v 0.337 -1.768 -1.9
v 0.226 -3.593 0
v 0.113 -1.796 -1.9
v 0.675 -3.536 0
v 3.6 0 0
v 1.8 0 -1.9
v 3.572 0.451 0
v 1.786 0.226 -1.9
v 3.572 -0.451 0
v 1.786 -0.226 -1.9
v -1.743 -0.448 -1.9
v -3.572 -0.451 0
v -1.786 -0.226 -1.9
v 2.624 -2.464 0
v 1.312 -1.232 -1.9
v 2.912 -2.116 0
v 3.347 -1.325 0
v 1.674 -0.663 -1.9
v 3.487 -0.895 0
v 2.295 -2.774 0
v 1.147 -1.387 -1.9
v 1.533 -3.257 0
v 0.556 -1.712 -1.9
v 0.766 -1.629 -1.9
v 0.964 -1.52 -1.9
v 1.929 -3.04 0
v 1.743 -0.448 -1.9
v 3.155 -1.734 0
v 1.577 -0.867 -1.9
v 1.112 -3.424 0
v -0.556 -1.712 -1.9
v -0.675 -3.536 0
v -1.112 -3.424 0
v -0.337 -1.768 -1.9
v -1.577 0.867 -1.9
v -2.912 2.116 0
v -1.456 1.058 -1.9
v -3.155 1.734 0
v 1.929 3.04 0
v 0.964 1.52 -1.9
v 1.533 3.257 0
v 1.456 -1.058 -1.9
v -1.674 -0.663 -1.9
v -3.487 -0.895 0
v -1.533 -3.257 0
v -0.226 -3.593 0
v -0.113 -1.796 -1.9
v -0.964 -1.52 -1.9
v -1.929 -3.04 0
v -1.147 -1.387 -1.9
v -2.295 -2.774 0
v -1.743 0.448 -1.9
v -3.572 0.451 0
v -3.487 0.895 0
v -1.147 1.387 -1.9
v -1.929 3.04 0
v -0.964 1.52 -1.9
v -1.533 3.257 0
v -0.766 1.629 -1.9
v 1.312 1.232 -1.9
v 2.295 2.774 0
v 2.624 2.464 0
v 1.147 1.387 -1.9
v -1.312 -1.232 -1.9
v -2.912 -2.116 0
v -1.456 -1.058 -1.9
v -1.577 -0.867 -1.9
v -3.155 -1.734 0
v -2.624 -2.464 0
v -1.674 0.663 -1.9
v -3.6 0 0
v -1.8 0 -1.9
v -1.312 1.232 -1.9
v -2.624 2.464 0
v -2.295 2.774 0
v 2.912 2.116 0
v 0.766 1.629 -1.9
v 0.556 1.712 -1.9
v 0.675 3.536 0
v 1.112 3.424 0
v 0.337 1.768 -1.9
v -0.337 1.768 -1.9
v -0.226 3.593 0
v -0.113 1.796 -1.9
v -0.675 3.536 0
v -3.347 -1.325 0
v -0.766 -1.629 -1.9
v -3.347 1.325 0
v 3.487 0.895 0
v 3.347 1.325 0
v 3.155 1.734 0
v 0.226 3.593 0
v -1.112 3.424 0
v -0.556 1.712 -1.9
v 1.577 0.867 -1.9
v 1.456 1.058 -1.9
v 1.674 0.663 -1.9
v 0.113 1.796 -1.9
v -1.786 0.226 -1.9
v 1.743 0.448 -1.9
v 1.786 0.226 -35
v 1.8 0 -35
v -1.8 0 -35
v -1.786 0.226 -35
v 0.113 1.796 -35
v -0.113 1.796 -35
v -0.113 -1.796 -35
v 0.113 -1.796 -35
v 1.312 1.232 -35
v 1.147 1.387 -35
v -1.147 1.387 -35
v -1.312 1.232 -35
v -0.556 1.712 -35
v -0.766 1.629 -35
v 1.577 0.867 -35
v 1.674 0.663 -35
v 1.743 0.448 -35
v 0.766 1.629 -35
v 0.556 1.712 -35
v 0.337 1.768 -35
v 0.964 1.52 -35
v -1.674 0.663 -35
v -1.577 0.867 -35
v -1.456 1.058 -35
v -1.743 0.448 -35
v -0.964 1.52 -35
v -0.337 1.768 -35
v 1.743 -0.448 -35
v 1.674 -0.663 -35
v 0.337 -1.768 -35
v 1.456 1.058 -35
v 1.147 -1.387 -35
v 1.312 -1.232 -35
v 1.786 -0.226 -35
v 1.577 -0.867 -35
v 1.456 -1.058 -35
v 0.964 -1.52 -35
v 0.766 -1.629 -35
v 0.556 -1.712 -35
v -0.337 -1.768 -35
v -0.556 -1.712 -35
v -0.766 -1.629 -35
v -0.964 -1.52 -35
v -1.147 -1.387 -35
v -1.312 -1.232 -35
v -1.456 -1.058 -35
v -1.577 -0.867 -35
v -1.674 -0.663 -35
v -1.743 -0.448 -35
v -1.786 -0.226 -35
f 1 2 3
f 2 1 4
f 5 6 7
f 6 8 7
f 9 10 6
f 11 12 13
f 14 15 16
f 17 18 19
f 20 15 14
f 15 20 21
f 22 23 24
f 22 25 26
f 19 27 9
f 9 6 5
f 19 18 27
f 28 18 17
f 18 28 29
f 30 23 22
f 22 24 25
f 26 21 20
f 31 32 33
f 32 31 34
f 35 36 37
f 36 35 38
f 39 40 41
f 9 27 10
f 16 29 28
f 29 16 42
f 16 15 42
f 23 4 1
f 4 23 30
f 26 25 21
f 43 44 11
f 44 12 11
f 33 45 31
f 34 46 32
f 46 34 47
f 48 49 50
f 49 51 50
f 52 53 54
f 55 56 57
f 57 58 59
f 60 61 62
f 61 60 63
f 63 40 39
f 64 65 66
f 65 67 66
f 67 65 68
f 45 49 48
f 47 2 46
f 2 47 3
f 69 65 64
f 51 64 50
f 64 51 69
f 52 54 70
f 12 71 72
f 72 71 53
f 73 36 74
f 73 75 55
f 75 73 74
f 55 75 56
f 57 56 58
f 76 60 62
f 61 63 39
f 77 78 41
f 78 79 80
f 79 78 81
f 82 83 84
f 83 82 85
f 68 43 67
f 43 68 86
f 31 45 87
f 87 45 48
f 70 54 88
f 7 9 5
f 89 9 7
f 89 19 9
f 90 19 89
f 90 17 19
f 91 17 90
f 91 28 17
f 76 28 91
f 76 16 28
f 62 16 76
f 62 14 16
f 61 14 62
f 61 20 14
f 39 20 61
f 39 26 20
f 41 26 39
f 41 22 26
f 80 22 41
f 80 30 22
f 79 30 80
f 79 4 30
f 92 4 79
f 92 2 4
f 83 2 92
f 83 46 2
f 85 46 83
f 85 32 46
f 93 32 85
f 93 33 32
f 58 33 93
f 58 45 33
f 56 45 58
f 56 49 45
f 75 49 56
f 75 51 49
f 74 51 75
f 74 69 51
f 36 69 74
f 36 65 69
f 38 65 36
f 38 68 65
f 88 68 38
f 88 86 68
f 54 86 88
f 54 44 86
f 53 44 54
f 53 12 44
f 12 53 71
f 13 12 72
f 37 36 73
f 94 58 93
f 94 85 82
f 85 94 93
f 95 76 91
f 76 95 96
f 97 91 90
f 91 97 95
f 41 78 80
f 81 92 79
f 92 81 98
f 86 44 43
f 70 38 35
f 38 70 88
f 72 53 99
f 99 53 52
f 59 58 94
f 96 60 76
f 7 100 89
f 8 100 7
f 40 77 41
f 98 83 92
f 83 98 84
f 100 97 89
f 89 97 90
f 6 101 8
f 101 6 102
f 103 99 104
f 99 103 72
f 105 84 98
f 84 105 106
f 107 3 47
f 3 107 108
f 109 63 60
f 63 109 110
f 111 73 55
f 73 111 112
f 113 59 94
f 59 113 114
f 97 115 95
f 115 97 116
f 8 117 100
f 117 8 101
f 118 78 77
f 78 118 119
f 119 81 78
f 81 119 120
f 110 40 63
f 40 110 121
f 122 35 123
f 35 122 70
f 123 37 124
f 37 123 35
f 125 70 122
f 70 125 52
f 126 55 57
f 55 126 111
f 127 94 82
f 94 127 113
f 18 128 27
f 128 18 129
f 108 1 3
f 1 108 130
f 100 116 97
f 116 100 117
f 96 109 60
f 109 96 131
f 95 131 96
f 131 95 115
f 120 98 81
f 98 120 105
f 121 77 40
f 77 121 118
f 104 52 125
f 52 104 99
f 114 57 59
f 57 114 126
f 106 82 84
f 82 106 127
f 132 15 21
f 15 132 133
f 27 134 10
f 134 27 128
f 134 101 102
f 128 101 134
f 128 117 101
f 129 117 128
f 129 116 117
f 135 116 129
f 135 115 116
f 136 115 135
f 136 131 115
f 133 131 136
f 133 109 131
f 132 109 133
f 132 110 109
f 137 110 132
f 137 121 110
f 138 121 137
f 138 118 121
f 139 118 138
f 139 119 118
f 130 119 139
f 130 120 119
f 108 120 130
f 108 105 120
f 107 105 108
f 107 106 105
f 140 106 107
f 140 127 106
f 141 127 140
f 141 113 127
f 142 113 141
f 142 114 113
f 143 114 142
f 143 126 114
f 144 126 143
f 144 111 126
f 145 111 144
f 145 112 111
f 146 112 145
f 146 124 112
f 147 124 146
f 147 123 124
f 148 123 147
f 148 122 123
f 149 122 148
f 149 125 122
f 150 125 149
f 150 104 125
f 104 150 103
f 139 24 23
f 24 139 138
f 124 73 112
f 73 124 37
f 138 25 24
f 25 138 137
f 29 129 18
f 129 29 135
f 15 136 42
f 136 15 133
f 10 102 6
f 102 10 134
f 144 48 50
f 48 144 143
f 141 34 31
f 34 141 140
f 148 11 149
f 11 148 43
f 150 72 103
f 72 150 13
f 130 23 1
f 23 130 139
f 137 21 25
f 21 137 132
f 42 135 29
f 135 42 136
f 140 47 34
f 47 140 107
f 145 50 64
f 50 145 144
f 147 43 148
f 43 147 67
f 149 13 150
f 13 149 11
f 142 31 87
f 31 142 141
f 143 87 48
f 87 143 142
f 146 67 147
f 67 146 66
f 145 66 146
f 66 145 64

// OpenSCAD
$fn = 50;


difference() {
	union() {
		translate(v = [0, 0, -1.9000000000]) {
			rotate(a = [0, 0, 0]) {
				cylinder(h = 1.9000000000, r1 = 1.8000000000, r2 = 3.6000000000);
			}
		}
		translate(v = [0, 0, -35]) {
			rotate(a = [0, 0, 0]) {
				cylinder(h = 35, r = 1.8000000000);
			}
		}
	}
	union();
}
